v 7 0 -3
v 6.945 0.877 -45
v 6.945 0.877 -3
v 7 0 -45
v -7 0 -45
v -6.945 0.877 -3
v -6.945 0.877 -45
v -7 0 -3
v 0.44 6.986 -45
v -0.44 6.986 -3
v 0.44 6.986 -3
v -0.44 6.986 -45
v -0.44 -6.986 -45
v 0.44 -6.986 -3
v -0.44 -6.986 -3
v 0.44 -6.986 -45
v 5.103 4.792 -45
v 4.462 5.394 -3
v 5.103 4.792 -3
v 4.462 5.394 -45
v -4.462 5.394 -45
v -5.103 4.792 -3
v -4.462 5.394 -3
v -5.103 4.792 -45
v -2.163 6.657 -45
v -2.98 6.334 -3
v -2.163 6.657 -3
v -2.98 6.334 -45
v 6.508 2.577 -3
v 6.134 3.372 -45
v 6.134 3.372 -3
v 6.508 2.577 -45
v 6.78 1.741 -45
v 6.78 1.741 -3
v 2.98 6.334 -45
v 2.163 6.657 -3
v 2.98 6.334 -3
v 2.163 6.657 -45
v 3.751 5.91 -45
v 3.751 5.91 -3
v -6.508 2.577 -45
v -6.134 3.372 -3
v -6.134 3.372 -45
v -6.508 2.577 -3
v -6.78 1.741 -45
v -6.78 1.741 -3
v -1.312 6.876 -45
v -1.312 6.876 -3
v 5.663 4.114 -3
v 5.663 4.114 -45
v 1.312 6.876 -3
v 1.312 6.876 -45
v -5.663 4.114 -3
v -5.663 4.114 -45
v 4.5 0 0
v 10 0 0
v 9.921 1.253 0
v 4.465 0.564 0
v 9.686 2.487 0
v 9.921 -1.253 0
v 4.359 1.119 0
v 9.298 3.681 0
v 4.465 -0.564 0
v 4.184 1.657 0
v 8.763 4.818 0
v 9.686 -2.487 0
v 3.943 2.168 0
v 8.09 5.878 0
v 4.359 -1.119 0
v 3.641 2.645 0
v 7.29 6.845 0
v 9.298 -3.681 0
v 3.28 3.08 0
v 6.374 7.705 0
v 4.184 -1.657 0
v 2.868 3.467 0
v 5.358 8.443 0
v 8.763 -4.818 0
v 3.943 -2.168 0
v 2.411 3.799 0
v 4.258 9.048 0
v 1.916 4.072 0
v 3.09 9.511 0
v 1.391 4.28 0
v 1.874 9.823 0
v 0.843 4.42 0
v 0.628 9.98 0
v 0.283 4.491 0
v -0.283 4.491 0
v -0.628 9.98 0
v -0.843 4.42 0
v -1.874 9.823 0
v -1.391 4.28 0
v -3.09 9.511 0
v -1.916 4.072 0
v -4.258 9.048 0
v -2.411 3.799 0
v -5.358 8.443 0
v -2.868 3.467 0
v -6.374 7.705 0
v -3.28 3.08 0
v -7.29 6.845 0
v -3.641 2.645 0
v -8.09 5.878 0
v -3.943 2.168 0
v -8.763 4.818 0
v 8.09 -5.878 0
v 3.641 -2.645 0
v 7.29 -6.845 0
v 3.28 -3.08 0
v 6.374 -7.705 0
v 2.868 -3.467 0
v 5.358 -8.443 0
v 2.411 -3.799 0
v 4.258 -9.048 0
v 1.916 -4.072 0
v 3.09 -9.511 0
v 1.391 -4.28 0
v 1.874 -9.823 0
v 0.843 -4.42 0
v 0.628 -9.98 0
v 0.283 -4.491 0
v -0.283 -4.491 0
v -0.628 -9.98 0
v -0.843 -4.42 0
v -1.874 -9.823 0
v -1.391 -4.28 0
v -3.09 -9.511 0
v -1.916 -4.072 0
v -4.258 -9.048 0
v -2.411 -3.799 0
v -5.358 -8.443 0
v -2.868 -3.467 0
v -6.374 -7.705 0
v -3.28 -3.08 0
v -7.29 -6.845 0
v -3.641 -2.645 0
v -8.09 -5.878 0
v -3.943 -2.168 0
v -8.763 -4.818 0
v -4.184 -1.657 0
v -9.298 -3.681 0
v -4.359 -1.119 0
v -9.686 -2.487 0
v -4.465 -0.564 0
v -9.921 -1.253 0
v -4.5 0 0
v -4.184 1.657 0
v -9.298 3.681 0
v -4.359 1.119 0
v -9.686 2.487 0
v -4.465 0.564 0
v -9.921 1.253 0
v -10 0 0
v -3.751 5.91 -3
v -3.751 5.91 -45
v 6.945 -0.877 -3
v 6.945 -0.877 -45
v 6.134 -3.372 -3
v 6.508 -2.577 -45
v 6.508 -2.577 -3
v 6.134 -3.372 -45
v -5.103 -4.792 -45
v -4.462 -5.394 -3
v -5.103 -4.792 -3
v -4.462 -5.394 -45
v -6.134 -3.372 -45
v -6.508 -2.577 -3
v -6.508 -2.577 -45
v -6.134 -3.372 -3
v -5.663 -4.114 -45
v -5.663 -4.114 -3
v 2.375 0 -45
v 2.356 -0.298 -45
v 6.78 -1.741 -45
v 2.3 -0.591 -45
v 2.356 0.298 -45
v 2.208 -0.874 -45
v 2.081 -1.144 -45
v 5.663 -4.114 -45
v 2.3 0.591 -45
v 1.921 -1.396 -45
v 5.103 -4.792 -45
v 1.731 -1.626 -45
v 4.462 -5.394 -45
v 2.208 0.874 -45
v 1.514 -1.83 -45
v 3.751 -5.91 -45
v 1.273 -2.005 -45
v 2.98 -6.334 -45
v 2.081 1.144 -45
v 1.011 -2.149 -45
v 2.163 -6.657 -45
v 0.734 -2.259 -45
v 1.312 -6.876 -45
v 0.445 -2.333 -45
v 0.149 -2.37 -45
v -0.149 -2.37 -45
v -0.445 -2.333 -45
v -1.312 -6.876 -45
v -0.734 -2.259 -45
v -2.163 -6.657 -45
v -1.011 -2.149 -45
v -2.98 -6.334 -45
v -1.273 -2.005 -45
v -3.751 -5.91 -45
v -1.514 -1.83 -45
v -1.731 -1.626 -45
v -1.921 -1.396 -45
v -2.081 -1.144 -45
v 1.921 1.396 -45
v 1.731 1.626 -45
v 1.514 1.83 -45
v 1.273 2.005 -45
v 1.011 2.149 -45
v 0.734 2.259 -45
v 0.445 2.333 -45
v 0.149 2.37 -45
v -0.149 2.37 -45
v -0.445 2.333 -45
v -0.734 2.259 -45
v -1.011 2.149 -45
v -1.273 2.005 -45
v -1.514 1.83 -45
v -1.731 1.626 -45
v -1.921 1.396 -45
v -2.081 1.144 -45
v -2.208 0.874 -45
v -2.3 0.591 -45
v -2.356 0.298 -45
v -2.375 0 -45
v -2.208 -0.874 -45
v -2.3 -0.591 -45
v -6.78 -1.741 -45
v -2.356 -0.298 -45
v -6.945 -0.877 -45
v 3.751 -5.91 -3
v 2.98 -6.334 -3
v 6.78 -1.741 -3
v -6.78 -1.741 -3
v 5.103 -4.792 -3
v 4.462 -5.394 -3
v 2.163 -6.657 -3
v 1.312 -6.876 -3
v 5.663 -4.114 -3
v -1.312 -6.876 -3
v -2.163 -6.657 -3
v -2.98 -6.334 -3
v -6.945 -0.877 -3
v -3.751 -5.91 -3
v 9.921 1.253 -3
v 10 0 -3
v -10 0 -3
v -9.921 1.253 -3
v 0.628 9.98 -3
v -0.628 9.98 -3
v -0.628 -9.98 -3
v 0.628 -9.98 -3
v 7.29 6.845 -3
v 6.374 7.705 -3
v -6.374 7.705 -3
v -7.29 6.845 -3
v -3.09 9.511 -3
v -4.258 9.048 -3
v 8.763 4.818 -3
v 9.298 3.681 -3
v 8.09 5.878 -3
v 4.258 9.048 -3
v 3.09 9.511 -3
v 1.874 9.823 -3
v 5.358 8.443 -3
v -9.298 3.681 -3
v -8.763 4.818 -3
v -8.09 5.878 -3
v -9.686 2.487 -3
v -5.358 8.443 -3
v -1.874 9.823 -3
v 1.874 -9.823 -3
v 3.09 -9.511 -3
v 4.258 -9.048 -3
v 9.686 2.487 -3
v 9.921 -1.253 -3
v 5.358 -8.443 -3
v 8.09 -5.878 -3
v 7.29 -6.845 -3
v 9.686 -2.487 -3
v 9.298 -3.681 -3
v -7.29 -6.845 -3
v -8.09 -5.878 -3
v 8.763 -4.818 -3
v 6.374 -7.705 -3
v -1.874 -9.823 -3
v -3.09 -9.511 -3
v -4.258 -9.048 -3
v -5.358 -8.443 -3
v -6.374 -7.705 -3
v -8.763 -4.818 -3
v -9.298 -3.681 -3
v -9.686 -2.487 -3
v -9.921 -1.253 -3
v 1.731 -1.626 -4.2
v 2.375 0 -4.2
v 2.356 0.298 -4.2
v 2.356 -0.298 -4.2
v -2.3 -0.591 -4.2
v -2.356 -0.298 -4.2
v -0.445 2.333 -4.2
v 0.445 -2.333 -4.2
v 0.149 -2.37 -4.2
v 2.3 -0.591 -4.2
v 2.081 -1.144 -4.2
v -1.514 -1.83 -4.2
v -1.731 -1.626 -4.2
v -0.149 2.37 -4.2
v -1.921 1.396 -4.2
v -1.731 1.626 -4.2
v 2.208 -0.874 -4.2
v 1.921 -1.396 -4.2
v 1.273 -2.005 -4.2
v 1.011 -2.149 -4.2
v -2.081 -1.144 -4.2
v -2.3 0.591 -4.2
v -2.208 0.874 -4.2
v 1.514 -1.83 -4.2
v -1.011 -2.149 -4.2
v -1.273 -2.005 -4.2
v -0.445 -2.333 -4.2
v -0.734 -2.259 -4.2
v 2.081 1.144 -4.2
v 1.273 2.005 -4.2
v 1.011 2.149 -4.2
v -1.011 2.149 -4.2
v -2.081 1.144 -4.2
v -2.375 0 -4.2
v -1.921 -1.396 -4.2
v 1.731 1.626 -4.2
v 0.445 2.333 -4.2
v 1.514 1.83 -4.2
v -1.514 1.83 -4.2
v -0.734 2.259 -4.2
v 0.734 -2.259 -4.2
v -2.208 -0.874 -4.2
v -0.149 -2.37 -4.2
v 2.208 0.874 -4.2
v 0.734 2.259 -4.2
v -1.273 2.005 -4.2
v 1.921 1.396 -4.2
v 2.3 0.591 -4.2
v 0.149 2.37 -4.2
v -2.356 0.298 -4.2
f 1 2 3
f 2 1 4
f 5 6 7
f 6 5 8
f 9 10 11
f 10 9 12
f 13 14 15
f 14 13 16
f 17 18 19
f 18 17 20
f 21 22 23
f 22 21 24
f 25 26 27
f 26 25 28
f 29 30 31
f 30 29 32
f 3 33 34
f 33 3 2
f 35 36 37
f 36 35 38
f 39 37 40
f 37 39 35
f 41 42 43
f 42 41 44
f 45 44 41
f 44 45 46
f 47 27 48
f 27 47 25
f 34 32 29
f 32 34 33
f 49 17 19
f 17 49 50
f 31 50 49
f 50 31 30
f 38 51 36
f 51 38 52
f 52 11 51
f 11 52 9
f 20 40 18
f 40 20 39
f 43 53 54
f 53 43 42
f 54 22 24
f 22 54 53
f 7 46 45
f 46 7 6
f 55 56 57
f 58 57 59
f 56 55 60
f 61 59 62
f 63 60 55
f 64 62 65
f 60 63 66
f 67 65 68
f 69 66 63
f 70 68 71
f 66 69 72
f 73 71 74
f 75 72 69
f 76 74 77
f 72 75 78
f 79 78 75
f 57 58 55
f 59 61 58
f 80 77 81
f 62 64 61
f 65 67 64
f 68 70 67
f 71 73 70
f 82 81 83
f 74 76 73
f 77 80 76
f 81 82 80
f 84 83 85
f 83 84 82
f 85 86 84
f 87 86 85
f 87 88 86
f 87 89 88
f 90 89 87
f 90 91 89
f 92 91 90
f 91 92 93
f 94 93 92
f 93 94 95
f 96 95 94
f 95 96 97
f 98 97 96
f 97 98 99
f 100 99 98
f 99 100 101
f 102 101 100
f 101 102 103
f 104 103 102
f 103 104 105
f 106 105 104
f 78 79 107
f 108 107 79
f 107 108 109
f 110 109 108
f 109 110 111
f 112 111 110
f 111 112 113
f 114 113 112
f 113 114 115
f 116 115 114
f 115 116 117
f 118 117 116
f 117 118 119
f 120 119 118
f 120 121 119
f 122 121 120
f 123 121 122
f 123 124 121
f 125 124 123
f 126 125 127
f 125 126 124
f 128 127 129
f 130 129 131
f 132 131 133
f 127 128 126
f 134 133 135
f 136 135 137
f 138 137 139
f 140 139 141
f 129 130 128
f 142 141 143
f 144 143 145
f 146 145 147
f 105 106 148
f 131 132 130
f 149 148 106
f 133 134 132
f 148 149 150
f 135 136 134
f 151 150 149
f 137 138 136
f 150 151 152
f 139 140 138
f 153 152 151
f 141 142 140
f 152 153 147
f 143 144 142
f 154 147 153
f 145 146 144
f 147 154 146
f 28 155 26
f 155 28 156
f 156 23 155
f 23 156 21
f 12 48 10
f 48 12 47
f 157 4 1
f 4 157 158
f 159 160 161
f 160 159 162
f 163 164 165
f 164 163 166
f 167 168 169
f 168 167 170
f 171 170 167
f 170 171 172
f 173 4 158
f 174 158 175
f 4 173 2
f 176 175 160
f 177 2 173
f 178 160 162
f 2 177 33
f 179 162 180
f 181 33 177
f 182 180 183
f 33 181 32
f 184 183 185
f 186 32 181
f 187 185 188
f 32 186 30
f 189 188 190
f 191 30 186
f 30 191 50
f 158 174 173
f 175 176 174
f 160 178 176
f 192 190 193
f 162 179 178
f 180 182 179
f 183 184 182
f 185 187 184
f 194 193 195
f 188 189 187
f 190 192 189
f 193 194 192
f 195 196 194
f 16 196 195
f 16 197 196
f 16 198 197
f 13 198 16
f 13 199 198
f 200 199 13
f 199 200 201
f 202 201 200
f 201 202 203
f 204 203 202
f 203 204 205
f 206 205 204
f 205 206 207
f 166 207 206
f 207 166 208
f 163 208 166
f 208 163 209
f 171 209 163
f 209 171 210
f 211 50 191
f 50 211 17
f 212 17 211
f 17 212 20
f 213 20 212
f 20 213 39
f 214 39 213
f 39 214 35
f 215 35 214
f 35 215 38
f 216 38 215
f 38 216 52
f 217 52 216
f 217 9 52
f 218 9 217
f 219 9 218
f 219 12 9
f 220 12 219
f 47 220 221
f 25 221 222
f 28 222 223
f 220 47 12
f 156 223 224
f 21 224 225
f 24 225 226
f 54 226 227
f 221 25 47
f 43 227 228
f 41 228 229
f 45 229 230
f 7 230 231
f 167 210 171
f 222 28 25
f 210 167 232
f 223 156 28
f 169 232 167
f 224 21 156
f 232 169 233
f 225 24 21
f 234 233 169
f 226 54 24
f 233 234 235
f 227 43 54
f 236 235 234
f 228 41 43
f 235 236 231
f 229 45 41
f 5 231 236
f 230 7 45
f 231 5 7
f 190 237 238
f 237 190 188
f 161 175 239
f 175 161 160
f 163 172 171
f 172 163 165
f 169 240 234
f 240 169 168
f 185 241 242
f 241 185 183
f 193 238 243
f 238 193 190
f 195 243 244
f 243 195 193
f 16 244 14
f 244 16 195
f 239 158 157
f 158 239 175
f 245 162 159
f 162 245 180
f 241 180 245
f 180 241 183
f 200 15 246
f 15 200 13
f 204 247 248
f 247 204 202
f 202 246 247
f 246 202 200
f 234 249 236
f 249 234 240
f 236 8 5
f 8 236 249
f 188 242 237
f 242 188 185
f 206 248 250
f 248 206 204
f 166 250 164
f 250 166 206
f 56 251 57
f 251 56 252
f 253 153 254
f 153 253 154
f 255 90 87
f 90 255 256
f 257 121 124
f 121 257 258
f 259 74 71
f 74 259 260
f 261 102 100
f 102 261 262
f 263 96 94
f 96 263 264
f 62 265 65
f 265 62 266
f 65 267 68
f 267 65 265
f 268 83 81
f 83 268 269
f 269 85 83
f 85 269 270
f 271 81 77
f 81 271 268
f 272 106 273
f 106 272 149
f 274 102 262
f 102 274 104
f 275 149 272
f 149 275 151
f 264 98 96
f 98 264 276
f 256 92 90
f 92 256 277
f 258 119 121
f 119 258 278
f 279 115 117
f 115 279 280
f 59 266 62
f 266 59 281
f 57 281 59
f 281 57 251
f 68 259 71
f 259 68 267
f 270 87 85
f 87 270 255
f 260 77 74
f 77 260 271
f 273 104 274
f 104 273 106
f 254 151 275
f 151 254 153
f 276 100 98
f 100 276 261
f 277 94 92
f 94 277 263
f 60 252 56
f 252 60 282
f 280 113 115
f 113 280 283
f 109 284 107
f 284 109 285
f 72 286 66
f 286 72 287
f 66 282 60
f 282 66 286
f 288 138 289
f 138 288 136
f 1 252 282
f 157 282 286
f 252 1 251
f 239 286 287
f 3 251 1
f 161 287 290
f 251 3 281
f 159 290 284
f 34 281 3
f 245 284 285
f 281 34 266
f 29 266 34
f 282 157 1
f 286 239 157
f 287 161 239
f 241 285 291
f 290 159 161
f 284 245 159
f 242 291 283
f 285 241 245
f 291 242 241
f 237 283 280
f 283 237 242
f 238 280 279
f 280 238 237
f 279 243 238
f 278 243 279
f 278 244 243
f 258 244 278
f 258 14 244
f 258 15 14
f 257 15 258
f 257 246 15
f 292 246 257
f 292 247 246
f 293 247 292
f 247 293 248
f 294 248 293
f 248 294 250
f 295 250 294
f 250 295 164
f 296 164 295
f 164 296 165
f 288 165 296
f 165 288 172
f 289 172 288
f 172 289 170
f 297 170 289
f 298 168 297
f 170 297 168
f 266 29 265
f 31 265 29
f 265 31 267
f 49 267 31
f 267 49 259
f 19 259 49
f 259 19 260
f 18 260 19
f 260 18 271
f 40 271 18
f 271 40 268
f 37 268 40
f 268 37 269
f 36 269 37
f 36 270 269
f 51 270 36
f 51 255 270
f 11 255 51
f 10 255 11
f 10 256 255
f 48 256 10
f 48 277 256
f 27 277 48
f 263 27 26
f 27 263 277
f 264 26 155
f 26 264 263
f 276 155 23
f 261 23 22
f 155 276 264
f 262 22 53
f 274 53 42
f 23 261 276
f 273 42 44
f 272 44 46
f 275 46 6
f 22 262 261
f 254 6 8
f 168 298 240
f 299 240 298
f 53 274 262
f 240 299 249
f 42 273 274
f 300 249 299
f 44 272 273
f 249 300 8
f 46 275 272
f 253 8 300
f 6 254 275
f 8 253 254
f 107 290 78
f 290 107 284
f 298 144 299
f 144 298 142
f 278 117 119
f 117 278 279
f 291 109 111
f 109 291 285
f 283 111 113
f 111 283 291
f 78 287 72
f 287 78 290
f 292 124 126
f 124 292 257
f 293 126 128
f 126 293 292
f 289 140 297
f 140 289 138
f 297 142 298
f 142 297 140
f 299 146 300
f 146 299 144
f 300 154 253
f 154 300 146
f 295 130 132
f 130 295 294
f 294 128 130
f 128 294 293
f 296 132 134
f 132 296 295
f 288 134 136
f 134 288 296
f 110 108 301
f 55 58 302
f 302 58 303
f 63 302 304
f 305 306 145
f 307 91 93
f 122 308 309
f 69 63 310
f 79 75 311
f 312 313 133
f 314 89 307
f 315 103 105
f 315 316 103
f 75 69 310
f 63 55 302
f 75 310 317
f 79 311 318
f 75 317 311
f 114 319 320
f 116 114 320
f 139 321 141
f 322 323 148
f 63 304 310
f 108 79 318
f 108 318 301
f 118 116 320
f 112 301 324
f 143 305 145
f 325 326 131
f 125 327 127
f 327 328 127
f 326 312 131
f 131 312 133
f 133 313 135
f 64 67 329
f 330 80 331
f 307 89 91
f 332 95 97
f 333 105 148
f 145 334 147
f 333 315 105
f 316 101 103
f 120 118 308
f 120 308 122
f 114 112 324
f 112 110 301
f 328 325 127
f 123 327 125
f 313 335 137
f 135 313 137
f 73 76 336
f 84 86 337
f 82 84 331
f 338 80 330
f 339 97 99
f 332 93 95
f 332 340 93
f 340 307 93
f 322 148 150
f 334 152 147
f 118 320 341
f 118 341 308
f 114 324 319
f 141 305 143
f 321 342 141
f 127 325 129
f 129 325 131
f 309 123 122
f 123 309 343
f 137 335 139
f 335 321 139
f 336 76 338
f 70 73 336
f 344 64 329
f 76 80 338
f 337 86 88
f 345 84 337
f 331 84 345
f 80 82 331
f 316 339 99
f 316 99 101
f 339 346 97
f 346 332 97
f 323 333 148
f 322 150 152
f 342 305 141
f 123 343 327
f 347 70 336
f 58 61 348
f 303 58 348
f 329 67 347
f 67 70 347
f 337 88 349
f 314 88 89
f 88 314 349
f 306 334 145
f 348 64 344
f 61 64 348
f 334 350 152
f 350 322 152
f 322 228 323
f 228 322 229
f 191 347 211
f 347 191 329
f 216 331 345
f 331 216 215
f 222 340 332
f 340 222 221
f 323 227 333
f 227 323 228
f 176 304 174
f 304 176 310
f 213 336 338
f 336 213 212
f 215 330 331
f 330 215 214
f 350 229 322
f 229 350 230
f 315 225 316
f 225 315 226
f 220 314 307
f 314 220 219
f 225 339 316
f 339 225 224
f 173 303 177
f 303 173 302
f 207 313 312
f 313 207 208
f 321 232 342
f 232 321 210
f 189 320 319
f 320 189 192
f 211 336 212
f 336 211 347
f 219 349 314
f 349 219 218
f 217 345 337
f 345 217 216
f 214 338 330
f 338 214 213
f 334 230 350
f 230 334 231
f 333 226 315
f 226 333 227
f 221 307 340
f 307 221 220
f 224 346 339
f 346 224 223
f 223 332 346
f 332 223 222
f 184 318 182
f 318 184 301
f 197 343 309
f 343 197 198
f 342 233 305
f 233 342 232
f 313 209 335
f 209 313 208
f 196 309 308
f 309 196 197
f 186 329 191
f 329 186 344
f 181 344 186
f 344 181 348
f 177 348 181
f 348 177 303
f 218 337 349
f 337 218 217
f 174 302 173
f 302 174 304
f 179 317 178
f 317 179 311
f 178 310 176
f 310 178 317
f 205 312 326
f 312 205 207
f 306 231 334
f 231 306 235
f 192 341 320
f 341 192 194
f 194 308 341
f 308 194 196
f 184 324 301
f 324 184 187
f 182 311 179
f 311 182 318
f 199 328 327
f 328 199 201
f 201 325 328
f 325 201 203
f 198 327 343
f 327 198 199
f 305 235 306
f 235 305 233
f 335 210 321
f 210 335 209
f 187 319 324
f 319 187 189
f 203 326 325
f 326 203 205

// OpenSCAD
$fn = 50;


difference() {
	union() {
		translate(v = [0, 0, -45.0000000000]) {
			cylinder(h = 45, r = 7.0000000000);
		}
		translate(v = [0, 0, -3.0000000000]) {
			cylinder(h = 3, r = 10.0000000000);
		}
	}
	union() {
		translate(v = [0, 0, 0]) {
			rotate(a = [0, 0, 0]) {
				difference() {
					union() {
						#translate(v = [0, 0, -45.0000000000]) {
							cylinder(h = 45, r = 2.2500000000);
						}
						#translate(v = [0, 0, -4.2000000000]) {
							cylinder(h = 4.2000000000, r1 = 2.3750000000, r2 = 4.5000000000);
						}
						#translate(v = [0, 0, -45.0000000000]) {
							cylinder(h = 45, r = 2.3750000000);
						}
						#translate(v = [0, 0, -45.0000000000]) {
							cylinder(h = 45, r = 2.2500000000);
						}
					}
					union();
				}
			}
		}
	}
}
